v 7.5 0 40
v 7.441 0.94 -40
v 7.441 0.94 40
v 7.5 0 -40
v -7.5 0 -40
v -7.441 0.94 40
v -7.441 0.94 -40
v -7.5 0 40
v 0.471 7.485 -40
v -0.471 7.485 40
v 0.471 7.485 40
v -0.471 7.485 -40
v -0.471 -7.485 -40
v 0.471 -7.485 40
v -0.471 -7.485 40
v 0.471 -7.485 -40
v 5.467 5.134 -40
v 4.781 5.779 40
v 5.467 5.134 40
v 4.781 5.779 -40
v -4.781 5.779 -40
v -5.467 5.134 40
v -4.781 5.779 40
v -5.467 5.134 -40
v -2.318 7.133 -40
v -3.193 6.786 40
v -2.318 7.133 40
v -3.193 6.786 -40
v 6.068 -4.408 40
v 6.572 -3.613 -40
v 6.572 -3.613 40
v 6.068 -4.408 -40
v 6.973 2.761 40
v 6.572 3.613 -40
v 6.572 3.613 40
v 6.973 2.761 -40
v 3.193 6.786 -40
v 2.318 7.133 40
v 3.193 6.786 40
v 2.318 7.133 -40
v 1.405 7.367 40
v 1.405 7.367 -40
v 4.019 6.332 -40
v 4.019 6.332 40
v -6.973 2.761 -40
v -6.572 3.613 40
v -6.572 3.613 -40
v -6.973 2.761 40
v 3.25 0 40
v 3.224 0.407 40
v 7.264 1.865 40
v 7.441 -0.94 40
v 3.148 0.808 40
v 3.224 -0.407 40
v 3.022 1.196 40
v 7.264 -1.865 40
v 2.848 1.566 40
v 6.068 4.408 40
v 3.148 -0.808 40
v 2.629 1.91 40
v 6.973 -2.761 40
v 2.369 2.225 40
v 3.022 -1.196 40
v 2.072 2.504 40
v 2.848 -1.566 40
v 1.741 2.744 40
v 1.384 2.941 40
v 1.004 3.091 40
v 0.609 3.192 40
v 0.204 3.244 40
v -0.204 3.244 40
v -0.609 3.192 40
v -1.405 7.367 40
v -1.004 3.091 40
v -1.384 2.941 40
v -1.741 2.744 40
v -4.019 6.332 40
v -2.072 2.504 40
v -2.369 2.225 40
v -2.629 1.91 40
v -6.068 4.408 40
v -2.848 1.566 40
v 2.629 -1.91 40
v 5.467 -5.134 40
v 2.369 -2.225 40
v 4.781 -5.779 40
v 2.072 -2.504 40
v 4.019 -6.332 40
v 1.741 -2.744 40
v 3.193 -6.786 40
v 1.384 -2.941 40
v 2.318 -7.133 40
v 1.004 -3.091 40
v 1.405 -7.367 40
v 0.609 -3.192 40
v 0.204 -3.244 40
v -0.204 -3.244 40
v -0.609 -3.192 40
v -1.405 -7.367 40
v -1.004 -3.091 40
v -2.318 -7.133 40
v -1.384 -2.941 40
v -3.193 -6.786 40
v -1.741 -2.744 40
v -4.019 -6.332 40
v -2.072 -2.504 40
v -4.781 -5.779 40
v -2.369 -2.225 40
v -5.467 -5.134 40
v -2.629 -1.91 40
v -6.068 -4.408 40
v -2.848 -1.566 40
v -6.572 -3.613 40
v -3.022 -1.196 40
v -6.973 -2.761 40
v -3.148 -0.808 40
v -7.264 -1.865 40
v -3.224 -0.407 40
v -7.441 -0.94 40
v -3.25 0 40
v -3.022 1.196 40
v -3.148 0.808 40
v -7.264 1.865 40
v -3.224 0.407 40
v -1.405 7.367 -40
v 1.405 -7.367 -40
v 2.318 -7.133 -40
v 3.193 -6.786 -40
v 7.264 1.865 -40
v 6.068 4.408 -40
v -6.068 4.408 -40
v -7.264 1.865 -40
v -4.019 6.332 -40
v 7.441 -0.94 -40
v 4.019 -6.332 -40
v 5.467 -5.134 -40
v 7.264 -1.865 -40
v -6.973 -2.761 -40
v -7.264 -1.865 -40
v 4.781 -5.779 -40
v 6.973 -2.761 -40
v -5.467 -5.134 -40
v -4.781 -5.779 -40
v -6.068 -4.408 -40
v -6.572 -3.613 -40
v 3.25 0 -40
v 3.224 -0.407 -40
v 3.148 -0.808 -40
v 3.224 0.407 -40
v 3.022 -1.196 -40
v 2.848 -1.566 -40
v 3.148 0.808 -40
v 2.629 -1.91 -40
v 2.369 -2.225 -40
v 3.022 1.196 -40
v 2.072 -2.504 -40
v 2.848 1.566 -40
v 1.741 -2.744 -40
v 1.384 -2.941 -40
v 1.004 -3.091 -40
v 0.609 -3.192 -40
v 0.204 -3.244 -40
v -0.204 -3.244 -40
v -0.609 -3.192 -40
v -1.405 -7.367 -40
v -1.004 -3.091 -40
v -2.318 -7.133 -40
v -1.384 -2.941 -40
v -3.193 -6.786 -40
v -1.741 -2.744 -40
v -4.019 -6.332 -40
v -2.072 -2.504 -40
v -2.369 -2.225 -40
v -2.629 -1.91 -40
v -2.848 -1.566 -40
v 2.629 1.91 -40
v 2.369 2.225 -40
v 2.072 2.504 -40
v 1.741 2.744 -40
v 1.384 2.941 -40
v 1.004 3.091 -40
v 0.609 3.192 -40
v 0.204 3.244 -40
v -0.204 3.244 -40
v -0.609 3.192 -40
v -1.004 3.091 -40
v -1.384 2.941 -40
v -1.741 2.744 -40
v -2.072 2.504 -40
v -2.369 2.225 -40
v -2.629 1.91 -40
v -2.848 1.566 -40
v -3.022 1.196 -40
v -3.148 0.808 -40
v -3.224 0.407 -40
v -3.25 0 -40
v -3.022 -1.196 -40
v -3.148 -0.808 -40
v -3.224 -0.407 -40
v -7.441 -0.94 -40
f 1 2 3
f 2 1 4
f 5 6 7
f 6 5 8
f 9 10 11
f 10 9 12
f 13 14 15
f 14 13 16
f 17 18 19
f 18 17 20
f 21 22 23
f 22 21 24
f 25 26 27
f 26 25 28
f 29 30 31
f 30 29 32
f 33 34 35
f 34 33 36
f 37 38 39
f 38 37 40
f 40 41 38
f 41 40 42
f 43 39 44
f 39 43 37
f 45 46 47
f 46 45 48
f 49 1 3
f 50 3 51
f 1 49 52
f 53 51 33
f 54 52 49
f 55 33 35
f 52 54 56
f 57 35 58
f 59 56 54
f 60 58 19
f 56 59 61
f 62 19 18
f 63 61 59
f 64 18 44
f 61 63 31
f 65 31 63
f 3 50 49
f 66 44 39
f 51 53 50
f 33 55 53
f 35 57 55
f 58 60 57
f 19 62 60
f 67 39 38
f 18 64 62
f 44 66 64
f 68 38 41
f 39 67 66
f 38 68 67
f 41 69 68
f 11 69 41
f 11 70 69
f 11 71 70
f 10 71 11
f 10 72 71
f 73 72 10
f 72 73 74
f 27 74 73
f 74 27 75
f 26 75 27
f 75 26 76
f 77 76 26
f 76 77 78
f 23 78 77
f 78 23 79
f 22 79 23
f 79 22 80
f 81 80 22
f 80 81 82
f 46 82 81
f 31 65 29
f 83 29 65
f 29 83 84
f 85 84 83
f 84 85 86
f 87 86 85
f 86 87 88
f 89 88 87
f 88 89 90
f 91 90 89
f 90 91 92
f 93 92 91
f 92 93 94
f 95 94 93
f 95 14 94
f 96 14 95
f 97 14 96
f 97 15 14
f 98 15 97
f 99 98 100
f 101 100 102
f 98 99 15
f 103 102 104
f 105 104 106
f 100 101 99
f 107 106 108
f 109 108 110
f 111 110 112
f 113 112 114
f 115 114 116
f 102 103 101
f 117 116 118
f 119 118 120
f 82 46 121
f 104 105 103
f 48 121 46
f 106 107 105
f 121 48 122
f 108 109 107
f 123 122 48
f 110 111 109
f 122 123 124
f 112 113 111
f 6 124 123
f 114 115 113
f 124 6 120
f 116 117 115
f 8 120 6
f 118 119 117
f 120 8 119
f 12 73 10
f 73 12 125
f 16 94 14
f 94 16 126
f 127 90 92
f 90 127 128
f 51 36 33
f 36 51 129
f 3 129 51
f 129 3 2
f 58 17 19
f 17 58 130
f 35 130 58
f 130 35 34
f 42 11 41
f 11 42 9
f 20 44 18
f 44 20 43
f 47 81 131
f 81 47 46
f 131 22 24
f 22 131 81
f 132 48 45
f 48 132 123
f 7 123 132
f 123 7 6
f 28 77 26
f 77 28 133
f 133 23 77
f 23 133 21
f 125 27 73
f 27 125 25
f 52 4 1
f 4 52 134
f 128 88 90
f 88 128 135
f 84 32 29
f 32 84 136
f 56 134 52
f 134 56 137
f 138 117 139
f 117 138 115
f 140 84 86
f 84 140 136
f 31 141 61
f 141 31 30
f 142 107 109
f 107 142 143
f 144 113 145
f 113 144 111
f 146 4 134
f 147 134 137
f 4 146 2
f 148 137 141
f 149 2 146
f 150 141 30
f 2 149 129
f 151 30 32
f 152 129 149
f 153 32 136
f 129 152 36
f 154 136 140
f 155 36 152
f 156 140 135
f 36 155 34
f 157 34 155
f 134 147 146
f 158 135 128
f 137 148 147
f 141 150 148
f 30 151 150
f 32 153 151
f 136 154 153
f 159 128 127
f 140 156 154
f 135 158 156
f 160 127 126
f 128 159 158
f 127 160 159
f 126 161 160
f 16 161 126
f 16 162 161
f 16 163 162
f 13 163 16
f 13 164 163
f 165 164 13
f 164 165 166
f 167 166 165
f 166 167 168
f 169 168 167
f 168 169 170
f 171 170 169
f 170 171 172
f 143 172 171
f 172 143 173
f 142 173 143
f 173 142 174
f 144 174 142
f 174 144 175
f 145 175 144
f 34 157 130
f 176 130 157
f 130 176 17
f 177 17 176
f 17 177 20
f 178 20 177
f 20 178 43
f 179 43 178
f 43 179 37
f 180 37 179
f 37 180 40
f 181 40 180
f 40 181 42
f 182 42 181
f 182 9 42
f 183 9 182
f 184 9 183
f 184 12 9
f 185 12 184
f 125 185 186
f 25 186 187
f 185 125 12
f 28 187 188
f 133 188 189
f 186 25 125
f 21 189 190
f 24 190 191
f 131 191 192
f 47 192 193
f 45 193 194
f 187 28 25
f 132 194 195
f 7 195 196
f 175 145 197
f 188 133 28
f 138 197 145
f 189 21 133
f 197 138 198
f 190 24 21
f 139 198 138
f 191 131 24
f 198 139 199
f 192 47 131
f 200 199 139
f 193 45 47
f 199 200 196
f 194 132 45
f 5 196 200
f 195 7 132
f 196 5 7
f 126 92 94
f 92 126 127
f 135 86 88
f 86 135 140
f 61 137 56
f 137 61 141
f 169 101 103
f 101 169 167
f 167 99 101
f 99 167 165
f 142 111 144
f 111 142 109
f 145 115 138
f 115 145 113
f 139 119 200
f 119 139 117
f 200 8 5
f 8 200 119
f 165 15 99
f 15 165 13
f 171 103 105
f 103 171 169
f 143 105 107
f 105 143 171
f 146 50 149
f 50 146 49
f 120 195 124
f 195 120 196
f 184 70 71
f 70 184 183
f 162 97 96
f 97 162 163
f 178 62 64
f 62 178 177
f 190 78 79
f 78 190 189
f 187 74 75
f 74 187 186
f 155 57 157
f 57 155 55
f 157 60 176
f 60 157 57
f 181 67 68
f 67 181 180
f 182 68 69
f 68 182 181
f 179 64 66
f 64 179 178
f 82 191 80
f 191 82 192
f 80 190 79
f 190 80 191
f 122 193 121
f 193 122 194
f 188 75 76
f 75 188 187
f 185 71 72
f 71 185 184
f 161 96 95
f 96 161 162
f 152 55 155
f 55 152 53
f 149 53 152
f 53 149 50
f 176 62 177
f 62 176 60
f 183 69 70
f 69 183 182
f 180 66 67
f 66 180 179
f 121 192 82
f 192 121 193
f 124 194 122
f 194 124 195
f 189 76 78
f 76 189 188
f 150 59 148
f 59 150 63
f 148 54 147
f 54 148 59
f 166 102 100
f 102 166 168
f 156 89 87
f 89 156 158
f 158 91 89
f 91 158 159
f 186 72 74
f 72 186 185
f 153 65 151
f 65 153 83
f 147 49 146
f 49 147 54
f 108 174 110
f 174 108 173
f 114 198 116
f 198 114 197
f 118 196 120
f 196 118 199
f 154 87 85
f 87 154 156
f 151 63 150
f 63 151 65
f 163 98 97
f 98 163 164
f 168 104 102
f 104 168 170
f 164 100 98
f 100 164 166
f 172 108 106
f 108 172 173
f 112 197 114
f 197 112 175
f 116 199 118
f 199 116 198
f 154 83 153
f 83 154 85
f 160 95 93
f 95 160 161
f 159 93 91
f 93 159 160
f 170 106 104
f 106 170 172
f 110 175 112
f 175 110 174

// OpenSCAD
$fn = 50;


difference() {
	union() {
		translate(v = [0, 0, -40.0000000000]) {
			cylinder(h = 80, r = 7.5000000000);
		}
	}
	union() {
		translate(v = [0, 0, -100.0000000000]) {
			cylinder(h = 200, r = 3.2500000000);
		}
	}
}
